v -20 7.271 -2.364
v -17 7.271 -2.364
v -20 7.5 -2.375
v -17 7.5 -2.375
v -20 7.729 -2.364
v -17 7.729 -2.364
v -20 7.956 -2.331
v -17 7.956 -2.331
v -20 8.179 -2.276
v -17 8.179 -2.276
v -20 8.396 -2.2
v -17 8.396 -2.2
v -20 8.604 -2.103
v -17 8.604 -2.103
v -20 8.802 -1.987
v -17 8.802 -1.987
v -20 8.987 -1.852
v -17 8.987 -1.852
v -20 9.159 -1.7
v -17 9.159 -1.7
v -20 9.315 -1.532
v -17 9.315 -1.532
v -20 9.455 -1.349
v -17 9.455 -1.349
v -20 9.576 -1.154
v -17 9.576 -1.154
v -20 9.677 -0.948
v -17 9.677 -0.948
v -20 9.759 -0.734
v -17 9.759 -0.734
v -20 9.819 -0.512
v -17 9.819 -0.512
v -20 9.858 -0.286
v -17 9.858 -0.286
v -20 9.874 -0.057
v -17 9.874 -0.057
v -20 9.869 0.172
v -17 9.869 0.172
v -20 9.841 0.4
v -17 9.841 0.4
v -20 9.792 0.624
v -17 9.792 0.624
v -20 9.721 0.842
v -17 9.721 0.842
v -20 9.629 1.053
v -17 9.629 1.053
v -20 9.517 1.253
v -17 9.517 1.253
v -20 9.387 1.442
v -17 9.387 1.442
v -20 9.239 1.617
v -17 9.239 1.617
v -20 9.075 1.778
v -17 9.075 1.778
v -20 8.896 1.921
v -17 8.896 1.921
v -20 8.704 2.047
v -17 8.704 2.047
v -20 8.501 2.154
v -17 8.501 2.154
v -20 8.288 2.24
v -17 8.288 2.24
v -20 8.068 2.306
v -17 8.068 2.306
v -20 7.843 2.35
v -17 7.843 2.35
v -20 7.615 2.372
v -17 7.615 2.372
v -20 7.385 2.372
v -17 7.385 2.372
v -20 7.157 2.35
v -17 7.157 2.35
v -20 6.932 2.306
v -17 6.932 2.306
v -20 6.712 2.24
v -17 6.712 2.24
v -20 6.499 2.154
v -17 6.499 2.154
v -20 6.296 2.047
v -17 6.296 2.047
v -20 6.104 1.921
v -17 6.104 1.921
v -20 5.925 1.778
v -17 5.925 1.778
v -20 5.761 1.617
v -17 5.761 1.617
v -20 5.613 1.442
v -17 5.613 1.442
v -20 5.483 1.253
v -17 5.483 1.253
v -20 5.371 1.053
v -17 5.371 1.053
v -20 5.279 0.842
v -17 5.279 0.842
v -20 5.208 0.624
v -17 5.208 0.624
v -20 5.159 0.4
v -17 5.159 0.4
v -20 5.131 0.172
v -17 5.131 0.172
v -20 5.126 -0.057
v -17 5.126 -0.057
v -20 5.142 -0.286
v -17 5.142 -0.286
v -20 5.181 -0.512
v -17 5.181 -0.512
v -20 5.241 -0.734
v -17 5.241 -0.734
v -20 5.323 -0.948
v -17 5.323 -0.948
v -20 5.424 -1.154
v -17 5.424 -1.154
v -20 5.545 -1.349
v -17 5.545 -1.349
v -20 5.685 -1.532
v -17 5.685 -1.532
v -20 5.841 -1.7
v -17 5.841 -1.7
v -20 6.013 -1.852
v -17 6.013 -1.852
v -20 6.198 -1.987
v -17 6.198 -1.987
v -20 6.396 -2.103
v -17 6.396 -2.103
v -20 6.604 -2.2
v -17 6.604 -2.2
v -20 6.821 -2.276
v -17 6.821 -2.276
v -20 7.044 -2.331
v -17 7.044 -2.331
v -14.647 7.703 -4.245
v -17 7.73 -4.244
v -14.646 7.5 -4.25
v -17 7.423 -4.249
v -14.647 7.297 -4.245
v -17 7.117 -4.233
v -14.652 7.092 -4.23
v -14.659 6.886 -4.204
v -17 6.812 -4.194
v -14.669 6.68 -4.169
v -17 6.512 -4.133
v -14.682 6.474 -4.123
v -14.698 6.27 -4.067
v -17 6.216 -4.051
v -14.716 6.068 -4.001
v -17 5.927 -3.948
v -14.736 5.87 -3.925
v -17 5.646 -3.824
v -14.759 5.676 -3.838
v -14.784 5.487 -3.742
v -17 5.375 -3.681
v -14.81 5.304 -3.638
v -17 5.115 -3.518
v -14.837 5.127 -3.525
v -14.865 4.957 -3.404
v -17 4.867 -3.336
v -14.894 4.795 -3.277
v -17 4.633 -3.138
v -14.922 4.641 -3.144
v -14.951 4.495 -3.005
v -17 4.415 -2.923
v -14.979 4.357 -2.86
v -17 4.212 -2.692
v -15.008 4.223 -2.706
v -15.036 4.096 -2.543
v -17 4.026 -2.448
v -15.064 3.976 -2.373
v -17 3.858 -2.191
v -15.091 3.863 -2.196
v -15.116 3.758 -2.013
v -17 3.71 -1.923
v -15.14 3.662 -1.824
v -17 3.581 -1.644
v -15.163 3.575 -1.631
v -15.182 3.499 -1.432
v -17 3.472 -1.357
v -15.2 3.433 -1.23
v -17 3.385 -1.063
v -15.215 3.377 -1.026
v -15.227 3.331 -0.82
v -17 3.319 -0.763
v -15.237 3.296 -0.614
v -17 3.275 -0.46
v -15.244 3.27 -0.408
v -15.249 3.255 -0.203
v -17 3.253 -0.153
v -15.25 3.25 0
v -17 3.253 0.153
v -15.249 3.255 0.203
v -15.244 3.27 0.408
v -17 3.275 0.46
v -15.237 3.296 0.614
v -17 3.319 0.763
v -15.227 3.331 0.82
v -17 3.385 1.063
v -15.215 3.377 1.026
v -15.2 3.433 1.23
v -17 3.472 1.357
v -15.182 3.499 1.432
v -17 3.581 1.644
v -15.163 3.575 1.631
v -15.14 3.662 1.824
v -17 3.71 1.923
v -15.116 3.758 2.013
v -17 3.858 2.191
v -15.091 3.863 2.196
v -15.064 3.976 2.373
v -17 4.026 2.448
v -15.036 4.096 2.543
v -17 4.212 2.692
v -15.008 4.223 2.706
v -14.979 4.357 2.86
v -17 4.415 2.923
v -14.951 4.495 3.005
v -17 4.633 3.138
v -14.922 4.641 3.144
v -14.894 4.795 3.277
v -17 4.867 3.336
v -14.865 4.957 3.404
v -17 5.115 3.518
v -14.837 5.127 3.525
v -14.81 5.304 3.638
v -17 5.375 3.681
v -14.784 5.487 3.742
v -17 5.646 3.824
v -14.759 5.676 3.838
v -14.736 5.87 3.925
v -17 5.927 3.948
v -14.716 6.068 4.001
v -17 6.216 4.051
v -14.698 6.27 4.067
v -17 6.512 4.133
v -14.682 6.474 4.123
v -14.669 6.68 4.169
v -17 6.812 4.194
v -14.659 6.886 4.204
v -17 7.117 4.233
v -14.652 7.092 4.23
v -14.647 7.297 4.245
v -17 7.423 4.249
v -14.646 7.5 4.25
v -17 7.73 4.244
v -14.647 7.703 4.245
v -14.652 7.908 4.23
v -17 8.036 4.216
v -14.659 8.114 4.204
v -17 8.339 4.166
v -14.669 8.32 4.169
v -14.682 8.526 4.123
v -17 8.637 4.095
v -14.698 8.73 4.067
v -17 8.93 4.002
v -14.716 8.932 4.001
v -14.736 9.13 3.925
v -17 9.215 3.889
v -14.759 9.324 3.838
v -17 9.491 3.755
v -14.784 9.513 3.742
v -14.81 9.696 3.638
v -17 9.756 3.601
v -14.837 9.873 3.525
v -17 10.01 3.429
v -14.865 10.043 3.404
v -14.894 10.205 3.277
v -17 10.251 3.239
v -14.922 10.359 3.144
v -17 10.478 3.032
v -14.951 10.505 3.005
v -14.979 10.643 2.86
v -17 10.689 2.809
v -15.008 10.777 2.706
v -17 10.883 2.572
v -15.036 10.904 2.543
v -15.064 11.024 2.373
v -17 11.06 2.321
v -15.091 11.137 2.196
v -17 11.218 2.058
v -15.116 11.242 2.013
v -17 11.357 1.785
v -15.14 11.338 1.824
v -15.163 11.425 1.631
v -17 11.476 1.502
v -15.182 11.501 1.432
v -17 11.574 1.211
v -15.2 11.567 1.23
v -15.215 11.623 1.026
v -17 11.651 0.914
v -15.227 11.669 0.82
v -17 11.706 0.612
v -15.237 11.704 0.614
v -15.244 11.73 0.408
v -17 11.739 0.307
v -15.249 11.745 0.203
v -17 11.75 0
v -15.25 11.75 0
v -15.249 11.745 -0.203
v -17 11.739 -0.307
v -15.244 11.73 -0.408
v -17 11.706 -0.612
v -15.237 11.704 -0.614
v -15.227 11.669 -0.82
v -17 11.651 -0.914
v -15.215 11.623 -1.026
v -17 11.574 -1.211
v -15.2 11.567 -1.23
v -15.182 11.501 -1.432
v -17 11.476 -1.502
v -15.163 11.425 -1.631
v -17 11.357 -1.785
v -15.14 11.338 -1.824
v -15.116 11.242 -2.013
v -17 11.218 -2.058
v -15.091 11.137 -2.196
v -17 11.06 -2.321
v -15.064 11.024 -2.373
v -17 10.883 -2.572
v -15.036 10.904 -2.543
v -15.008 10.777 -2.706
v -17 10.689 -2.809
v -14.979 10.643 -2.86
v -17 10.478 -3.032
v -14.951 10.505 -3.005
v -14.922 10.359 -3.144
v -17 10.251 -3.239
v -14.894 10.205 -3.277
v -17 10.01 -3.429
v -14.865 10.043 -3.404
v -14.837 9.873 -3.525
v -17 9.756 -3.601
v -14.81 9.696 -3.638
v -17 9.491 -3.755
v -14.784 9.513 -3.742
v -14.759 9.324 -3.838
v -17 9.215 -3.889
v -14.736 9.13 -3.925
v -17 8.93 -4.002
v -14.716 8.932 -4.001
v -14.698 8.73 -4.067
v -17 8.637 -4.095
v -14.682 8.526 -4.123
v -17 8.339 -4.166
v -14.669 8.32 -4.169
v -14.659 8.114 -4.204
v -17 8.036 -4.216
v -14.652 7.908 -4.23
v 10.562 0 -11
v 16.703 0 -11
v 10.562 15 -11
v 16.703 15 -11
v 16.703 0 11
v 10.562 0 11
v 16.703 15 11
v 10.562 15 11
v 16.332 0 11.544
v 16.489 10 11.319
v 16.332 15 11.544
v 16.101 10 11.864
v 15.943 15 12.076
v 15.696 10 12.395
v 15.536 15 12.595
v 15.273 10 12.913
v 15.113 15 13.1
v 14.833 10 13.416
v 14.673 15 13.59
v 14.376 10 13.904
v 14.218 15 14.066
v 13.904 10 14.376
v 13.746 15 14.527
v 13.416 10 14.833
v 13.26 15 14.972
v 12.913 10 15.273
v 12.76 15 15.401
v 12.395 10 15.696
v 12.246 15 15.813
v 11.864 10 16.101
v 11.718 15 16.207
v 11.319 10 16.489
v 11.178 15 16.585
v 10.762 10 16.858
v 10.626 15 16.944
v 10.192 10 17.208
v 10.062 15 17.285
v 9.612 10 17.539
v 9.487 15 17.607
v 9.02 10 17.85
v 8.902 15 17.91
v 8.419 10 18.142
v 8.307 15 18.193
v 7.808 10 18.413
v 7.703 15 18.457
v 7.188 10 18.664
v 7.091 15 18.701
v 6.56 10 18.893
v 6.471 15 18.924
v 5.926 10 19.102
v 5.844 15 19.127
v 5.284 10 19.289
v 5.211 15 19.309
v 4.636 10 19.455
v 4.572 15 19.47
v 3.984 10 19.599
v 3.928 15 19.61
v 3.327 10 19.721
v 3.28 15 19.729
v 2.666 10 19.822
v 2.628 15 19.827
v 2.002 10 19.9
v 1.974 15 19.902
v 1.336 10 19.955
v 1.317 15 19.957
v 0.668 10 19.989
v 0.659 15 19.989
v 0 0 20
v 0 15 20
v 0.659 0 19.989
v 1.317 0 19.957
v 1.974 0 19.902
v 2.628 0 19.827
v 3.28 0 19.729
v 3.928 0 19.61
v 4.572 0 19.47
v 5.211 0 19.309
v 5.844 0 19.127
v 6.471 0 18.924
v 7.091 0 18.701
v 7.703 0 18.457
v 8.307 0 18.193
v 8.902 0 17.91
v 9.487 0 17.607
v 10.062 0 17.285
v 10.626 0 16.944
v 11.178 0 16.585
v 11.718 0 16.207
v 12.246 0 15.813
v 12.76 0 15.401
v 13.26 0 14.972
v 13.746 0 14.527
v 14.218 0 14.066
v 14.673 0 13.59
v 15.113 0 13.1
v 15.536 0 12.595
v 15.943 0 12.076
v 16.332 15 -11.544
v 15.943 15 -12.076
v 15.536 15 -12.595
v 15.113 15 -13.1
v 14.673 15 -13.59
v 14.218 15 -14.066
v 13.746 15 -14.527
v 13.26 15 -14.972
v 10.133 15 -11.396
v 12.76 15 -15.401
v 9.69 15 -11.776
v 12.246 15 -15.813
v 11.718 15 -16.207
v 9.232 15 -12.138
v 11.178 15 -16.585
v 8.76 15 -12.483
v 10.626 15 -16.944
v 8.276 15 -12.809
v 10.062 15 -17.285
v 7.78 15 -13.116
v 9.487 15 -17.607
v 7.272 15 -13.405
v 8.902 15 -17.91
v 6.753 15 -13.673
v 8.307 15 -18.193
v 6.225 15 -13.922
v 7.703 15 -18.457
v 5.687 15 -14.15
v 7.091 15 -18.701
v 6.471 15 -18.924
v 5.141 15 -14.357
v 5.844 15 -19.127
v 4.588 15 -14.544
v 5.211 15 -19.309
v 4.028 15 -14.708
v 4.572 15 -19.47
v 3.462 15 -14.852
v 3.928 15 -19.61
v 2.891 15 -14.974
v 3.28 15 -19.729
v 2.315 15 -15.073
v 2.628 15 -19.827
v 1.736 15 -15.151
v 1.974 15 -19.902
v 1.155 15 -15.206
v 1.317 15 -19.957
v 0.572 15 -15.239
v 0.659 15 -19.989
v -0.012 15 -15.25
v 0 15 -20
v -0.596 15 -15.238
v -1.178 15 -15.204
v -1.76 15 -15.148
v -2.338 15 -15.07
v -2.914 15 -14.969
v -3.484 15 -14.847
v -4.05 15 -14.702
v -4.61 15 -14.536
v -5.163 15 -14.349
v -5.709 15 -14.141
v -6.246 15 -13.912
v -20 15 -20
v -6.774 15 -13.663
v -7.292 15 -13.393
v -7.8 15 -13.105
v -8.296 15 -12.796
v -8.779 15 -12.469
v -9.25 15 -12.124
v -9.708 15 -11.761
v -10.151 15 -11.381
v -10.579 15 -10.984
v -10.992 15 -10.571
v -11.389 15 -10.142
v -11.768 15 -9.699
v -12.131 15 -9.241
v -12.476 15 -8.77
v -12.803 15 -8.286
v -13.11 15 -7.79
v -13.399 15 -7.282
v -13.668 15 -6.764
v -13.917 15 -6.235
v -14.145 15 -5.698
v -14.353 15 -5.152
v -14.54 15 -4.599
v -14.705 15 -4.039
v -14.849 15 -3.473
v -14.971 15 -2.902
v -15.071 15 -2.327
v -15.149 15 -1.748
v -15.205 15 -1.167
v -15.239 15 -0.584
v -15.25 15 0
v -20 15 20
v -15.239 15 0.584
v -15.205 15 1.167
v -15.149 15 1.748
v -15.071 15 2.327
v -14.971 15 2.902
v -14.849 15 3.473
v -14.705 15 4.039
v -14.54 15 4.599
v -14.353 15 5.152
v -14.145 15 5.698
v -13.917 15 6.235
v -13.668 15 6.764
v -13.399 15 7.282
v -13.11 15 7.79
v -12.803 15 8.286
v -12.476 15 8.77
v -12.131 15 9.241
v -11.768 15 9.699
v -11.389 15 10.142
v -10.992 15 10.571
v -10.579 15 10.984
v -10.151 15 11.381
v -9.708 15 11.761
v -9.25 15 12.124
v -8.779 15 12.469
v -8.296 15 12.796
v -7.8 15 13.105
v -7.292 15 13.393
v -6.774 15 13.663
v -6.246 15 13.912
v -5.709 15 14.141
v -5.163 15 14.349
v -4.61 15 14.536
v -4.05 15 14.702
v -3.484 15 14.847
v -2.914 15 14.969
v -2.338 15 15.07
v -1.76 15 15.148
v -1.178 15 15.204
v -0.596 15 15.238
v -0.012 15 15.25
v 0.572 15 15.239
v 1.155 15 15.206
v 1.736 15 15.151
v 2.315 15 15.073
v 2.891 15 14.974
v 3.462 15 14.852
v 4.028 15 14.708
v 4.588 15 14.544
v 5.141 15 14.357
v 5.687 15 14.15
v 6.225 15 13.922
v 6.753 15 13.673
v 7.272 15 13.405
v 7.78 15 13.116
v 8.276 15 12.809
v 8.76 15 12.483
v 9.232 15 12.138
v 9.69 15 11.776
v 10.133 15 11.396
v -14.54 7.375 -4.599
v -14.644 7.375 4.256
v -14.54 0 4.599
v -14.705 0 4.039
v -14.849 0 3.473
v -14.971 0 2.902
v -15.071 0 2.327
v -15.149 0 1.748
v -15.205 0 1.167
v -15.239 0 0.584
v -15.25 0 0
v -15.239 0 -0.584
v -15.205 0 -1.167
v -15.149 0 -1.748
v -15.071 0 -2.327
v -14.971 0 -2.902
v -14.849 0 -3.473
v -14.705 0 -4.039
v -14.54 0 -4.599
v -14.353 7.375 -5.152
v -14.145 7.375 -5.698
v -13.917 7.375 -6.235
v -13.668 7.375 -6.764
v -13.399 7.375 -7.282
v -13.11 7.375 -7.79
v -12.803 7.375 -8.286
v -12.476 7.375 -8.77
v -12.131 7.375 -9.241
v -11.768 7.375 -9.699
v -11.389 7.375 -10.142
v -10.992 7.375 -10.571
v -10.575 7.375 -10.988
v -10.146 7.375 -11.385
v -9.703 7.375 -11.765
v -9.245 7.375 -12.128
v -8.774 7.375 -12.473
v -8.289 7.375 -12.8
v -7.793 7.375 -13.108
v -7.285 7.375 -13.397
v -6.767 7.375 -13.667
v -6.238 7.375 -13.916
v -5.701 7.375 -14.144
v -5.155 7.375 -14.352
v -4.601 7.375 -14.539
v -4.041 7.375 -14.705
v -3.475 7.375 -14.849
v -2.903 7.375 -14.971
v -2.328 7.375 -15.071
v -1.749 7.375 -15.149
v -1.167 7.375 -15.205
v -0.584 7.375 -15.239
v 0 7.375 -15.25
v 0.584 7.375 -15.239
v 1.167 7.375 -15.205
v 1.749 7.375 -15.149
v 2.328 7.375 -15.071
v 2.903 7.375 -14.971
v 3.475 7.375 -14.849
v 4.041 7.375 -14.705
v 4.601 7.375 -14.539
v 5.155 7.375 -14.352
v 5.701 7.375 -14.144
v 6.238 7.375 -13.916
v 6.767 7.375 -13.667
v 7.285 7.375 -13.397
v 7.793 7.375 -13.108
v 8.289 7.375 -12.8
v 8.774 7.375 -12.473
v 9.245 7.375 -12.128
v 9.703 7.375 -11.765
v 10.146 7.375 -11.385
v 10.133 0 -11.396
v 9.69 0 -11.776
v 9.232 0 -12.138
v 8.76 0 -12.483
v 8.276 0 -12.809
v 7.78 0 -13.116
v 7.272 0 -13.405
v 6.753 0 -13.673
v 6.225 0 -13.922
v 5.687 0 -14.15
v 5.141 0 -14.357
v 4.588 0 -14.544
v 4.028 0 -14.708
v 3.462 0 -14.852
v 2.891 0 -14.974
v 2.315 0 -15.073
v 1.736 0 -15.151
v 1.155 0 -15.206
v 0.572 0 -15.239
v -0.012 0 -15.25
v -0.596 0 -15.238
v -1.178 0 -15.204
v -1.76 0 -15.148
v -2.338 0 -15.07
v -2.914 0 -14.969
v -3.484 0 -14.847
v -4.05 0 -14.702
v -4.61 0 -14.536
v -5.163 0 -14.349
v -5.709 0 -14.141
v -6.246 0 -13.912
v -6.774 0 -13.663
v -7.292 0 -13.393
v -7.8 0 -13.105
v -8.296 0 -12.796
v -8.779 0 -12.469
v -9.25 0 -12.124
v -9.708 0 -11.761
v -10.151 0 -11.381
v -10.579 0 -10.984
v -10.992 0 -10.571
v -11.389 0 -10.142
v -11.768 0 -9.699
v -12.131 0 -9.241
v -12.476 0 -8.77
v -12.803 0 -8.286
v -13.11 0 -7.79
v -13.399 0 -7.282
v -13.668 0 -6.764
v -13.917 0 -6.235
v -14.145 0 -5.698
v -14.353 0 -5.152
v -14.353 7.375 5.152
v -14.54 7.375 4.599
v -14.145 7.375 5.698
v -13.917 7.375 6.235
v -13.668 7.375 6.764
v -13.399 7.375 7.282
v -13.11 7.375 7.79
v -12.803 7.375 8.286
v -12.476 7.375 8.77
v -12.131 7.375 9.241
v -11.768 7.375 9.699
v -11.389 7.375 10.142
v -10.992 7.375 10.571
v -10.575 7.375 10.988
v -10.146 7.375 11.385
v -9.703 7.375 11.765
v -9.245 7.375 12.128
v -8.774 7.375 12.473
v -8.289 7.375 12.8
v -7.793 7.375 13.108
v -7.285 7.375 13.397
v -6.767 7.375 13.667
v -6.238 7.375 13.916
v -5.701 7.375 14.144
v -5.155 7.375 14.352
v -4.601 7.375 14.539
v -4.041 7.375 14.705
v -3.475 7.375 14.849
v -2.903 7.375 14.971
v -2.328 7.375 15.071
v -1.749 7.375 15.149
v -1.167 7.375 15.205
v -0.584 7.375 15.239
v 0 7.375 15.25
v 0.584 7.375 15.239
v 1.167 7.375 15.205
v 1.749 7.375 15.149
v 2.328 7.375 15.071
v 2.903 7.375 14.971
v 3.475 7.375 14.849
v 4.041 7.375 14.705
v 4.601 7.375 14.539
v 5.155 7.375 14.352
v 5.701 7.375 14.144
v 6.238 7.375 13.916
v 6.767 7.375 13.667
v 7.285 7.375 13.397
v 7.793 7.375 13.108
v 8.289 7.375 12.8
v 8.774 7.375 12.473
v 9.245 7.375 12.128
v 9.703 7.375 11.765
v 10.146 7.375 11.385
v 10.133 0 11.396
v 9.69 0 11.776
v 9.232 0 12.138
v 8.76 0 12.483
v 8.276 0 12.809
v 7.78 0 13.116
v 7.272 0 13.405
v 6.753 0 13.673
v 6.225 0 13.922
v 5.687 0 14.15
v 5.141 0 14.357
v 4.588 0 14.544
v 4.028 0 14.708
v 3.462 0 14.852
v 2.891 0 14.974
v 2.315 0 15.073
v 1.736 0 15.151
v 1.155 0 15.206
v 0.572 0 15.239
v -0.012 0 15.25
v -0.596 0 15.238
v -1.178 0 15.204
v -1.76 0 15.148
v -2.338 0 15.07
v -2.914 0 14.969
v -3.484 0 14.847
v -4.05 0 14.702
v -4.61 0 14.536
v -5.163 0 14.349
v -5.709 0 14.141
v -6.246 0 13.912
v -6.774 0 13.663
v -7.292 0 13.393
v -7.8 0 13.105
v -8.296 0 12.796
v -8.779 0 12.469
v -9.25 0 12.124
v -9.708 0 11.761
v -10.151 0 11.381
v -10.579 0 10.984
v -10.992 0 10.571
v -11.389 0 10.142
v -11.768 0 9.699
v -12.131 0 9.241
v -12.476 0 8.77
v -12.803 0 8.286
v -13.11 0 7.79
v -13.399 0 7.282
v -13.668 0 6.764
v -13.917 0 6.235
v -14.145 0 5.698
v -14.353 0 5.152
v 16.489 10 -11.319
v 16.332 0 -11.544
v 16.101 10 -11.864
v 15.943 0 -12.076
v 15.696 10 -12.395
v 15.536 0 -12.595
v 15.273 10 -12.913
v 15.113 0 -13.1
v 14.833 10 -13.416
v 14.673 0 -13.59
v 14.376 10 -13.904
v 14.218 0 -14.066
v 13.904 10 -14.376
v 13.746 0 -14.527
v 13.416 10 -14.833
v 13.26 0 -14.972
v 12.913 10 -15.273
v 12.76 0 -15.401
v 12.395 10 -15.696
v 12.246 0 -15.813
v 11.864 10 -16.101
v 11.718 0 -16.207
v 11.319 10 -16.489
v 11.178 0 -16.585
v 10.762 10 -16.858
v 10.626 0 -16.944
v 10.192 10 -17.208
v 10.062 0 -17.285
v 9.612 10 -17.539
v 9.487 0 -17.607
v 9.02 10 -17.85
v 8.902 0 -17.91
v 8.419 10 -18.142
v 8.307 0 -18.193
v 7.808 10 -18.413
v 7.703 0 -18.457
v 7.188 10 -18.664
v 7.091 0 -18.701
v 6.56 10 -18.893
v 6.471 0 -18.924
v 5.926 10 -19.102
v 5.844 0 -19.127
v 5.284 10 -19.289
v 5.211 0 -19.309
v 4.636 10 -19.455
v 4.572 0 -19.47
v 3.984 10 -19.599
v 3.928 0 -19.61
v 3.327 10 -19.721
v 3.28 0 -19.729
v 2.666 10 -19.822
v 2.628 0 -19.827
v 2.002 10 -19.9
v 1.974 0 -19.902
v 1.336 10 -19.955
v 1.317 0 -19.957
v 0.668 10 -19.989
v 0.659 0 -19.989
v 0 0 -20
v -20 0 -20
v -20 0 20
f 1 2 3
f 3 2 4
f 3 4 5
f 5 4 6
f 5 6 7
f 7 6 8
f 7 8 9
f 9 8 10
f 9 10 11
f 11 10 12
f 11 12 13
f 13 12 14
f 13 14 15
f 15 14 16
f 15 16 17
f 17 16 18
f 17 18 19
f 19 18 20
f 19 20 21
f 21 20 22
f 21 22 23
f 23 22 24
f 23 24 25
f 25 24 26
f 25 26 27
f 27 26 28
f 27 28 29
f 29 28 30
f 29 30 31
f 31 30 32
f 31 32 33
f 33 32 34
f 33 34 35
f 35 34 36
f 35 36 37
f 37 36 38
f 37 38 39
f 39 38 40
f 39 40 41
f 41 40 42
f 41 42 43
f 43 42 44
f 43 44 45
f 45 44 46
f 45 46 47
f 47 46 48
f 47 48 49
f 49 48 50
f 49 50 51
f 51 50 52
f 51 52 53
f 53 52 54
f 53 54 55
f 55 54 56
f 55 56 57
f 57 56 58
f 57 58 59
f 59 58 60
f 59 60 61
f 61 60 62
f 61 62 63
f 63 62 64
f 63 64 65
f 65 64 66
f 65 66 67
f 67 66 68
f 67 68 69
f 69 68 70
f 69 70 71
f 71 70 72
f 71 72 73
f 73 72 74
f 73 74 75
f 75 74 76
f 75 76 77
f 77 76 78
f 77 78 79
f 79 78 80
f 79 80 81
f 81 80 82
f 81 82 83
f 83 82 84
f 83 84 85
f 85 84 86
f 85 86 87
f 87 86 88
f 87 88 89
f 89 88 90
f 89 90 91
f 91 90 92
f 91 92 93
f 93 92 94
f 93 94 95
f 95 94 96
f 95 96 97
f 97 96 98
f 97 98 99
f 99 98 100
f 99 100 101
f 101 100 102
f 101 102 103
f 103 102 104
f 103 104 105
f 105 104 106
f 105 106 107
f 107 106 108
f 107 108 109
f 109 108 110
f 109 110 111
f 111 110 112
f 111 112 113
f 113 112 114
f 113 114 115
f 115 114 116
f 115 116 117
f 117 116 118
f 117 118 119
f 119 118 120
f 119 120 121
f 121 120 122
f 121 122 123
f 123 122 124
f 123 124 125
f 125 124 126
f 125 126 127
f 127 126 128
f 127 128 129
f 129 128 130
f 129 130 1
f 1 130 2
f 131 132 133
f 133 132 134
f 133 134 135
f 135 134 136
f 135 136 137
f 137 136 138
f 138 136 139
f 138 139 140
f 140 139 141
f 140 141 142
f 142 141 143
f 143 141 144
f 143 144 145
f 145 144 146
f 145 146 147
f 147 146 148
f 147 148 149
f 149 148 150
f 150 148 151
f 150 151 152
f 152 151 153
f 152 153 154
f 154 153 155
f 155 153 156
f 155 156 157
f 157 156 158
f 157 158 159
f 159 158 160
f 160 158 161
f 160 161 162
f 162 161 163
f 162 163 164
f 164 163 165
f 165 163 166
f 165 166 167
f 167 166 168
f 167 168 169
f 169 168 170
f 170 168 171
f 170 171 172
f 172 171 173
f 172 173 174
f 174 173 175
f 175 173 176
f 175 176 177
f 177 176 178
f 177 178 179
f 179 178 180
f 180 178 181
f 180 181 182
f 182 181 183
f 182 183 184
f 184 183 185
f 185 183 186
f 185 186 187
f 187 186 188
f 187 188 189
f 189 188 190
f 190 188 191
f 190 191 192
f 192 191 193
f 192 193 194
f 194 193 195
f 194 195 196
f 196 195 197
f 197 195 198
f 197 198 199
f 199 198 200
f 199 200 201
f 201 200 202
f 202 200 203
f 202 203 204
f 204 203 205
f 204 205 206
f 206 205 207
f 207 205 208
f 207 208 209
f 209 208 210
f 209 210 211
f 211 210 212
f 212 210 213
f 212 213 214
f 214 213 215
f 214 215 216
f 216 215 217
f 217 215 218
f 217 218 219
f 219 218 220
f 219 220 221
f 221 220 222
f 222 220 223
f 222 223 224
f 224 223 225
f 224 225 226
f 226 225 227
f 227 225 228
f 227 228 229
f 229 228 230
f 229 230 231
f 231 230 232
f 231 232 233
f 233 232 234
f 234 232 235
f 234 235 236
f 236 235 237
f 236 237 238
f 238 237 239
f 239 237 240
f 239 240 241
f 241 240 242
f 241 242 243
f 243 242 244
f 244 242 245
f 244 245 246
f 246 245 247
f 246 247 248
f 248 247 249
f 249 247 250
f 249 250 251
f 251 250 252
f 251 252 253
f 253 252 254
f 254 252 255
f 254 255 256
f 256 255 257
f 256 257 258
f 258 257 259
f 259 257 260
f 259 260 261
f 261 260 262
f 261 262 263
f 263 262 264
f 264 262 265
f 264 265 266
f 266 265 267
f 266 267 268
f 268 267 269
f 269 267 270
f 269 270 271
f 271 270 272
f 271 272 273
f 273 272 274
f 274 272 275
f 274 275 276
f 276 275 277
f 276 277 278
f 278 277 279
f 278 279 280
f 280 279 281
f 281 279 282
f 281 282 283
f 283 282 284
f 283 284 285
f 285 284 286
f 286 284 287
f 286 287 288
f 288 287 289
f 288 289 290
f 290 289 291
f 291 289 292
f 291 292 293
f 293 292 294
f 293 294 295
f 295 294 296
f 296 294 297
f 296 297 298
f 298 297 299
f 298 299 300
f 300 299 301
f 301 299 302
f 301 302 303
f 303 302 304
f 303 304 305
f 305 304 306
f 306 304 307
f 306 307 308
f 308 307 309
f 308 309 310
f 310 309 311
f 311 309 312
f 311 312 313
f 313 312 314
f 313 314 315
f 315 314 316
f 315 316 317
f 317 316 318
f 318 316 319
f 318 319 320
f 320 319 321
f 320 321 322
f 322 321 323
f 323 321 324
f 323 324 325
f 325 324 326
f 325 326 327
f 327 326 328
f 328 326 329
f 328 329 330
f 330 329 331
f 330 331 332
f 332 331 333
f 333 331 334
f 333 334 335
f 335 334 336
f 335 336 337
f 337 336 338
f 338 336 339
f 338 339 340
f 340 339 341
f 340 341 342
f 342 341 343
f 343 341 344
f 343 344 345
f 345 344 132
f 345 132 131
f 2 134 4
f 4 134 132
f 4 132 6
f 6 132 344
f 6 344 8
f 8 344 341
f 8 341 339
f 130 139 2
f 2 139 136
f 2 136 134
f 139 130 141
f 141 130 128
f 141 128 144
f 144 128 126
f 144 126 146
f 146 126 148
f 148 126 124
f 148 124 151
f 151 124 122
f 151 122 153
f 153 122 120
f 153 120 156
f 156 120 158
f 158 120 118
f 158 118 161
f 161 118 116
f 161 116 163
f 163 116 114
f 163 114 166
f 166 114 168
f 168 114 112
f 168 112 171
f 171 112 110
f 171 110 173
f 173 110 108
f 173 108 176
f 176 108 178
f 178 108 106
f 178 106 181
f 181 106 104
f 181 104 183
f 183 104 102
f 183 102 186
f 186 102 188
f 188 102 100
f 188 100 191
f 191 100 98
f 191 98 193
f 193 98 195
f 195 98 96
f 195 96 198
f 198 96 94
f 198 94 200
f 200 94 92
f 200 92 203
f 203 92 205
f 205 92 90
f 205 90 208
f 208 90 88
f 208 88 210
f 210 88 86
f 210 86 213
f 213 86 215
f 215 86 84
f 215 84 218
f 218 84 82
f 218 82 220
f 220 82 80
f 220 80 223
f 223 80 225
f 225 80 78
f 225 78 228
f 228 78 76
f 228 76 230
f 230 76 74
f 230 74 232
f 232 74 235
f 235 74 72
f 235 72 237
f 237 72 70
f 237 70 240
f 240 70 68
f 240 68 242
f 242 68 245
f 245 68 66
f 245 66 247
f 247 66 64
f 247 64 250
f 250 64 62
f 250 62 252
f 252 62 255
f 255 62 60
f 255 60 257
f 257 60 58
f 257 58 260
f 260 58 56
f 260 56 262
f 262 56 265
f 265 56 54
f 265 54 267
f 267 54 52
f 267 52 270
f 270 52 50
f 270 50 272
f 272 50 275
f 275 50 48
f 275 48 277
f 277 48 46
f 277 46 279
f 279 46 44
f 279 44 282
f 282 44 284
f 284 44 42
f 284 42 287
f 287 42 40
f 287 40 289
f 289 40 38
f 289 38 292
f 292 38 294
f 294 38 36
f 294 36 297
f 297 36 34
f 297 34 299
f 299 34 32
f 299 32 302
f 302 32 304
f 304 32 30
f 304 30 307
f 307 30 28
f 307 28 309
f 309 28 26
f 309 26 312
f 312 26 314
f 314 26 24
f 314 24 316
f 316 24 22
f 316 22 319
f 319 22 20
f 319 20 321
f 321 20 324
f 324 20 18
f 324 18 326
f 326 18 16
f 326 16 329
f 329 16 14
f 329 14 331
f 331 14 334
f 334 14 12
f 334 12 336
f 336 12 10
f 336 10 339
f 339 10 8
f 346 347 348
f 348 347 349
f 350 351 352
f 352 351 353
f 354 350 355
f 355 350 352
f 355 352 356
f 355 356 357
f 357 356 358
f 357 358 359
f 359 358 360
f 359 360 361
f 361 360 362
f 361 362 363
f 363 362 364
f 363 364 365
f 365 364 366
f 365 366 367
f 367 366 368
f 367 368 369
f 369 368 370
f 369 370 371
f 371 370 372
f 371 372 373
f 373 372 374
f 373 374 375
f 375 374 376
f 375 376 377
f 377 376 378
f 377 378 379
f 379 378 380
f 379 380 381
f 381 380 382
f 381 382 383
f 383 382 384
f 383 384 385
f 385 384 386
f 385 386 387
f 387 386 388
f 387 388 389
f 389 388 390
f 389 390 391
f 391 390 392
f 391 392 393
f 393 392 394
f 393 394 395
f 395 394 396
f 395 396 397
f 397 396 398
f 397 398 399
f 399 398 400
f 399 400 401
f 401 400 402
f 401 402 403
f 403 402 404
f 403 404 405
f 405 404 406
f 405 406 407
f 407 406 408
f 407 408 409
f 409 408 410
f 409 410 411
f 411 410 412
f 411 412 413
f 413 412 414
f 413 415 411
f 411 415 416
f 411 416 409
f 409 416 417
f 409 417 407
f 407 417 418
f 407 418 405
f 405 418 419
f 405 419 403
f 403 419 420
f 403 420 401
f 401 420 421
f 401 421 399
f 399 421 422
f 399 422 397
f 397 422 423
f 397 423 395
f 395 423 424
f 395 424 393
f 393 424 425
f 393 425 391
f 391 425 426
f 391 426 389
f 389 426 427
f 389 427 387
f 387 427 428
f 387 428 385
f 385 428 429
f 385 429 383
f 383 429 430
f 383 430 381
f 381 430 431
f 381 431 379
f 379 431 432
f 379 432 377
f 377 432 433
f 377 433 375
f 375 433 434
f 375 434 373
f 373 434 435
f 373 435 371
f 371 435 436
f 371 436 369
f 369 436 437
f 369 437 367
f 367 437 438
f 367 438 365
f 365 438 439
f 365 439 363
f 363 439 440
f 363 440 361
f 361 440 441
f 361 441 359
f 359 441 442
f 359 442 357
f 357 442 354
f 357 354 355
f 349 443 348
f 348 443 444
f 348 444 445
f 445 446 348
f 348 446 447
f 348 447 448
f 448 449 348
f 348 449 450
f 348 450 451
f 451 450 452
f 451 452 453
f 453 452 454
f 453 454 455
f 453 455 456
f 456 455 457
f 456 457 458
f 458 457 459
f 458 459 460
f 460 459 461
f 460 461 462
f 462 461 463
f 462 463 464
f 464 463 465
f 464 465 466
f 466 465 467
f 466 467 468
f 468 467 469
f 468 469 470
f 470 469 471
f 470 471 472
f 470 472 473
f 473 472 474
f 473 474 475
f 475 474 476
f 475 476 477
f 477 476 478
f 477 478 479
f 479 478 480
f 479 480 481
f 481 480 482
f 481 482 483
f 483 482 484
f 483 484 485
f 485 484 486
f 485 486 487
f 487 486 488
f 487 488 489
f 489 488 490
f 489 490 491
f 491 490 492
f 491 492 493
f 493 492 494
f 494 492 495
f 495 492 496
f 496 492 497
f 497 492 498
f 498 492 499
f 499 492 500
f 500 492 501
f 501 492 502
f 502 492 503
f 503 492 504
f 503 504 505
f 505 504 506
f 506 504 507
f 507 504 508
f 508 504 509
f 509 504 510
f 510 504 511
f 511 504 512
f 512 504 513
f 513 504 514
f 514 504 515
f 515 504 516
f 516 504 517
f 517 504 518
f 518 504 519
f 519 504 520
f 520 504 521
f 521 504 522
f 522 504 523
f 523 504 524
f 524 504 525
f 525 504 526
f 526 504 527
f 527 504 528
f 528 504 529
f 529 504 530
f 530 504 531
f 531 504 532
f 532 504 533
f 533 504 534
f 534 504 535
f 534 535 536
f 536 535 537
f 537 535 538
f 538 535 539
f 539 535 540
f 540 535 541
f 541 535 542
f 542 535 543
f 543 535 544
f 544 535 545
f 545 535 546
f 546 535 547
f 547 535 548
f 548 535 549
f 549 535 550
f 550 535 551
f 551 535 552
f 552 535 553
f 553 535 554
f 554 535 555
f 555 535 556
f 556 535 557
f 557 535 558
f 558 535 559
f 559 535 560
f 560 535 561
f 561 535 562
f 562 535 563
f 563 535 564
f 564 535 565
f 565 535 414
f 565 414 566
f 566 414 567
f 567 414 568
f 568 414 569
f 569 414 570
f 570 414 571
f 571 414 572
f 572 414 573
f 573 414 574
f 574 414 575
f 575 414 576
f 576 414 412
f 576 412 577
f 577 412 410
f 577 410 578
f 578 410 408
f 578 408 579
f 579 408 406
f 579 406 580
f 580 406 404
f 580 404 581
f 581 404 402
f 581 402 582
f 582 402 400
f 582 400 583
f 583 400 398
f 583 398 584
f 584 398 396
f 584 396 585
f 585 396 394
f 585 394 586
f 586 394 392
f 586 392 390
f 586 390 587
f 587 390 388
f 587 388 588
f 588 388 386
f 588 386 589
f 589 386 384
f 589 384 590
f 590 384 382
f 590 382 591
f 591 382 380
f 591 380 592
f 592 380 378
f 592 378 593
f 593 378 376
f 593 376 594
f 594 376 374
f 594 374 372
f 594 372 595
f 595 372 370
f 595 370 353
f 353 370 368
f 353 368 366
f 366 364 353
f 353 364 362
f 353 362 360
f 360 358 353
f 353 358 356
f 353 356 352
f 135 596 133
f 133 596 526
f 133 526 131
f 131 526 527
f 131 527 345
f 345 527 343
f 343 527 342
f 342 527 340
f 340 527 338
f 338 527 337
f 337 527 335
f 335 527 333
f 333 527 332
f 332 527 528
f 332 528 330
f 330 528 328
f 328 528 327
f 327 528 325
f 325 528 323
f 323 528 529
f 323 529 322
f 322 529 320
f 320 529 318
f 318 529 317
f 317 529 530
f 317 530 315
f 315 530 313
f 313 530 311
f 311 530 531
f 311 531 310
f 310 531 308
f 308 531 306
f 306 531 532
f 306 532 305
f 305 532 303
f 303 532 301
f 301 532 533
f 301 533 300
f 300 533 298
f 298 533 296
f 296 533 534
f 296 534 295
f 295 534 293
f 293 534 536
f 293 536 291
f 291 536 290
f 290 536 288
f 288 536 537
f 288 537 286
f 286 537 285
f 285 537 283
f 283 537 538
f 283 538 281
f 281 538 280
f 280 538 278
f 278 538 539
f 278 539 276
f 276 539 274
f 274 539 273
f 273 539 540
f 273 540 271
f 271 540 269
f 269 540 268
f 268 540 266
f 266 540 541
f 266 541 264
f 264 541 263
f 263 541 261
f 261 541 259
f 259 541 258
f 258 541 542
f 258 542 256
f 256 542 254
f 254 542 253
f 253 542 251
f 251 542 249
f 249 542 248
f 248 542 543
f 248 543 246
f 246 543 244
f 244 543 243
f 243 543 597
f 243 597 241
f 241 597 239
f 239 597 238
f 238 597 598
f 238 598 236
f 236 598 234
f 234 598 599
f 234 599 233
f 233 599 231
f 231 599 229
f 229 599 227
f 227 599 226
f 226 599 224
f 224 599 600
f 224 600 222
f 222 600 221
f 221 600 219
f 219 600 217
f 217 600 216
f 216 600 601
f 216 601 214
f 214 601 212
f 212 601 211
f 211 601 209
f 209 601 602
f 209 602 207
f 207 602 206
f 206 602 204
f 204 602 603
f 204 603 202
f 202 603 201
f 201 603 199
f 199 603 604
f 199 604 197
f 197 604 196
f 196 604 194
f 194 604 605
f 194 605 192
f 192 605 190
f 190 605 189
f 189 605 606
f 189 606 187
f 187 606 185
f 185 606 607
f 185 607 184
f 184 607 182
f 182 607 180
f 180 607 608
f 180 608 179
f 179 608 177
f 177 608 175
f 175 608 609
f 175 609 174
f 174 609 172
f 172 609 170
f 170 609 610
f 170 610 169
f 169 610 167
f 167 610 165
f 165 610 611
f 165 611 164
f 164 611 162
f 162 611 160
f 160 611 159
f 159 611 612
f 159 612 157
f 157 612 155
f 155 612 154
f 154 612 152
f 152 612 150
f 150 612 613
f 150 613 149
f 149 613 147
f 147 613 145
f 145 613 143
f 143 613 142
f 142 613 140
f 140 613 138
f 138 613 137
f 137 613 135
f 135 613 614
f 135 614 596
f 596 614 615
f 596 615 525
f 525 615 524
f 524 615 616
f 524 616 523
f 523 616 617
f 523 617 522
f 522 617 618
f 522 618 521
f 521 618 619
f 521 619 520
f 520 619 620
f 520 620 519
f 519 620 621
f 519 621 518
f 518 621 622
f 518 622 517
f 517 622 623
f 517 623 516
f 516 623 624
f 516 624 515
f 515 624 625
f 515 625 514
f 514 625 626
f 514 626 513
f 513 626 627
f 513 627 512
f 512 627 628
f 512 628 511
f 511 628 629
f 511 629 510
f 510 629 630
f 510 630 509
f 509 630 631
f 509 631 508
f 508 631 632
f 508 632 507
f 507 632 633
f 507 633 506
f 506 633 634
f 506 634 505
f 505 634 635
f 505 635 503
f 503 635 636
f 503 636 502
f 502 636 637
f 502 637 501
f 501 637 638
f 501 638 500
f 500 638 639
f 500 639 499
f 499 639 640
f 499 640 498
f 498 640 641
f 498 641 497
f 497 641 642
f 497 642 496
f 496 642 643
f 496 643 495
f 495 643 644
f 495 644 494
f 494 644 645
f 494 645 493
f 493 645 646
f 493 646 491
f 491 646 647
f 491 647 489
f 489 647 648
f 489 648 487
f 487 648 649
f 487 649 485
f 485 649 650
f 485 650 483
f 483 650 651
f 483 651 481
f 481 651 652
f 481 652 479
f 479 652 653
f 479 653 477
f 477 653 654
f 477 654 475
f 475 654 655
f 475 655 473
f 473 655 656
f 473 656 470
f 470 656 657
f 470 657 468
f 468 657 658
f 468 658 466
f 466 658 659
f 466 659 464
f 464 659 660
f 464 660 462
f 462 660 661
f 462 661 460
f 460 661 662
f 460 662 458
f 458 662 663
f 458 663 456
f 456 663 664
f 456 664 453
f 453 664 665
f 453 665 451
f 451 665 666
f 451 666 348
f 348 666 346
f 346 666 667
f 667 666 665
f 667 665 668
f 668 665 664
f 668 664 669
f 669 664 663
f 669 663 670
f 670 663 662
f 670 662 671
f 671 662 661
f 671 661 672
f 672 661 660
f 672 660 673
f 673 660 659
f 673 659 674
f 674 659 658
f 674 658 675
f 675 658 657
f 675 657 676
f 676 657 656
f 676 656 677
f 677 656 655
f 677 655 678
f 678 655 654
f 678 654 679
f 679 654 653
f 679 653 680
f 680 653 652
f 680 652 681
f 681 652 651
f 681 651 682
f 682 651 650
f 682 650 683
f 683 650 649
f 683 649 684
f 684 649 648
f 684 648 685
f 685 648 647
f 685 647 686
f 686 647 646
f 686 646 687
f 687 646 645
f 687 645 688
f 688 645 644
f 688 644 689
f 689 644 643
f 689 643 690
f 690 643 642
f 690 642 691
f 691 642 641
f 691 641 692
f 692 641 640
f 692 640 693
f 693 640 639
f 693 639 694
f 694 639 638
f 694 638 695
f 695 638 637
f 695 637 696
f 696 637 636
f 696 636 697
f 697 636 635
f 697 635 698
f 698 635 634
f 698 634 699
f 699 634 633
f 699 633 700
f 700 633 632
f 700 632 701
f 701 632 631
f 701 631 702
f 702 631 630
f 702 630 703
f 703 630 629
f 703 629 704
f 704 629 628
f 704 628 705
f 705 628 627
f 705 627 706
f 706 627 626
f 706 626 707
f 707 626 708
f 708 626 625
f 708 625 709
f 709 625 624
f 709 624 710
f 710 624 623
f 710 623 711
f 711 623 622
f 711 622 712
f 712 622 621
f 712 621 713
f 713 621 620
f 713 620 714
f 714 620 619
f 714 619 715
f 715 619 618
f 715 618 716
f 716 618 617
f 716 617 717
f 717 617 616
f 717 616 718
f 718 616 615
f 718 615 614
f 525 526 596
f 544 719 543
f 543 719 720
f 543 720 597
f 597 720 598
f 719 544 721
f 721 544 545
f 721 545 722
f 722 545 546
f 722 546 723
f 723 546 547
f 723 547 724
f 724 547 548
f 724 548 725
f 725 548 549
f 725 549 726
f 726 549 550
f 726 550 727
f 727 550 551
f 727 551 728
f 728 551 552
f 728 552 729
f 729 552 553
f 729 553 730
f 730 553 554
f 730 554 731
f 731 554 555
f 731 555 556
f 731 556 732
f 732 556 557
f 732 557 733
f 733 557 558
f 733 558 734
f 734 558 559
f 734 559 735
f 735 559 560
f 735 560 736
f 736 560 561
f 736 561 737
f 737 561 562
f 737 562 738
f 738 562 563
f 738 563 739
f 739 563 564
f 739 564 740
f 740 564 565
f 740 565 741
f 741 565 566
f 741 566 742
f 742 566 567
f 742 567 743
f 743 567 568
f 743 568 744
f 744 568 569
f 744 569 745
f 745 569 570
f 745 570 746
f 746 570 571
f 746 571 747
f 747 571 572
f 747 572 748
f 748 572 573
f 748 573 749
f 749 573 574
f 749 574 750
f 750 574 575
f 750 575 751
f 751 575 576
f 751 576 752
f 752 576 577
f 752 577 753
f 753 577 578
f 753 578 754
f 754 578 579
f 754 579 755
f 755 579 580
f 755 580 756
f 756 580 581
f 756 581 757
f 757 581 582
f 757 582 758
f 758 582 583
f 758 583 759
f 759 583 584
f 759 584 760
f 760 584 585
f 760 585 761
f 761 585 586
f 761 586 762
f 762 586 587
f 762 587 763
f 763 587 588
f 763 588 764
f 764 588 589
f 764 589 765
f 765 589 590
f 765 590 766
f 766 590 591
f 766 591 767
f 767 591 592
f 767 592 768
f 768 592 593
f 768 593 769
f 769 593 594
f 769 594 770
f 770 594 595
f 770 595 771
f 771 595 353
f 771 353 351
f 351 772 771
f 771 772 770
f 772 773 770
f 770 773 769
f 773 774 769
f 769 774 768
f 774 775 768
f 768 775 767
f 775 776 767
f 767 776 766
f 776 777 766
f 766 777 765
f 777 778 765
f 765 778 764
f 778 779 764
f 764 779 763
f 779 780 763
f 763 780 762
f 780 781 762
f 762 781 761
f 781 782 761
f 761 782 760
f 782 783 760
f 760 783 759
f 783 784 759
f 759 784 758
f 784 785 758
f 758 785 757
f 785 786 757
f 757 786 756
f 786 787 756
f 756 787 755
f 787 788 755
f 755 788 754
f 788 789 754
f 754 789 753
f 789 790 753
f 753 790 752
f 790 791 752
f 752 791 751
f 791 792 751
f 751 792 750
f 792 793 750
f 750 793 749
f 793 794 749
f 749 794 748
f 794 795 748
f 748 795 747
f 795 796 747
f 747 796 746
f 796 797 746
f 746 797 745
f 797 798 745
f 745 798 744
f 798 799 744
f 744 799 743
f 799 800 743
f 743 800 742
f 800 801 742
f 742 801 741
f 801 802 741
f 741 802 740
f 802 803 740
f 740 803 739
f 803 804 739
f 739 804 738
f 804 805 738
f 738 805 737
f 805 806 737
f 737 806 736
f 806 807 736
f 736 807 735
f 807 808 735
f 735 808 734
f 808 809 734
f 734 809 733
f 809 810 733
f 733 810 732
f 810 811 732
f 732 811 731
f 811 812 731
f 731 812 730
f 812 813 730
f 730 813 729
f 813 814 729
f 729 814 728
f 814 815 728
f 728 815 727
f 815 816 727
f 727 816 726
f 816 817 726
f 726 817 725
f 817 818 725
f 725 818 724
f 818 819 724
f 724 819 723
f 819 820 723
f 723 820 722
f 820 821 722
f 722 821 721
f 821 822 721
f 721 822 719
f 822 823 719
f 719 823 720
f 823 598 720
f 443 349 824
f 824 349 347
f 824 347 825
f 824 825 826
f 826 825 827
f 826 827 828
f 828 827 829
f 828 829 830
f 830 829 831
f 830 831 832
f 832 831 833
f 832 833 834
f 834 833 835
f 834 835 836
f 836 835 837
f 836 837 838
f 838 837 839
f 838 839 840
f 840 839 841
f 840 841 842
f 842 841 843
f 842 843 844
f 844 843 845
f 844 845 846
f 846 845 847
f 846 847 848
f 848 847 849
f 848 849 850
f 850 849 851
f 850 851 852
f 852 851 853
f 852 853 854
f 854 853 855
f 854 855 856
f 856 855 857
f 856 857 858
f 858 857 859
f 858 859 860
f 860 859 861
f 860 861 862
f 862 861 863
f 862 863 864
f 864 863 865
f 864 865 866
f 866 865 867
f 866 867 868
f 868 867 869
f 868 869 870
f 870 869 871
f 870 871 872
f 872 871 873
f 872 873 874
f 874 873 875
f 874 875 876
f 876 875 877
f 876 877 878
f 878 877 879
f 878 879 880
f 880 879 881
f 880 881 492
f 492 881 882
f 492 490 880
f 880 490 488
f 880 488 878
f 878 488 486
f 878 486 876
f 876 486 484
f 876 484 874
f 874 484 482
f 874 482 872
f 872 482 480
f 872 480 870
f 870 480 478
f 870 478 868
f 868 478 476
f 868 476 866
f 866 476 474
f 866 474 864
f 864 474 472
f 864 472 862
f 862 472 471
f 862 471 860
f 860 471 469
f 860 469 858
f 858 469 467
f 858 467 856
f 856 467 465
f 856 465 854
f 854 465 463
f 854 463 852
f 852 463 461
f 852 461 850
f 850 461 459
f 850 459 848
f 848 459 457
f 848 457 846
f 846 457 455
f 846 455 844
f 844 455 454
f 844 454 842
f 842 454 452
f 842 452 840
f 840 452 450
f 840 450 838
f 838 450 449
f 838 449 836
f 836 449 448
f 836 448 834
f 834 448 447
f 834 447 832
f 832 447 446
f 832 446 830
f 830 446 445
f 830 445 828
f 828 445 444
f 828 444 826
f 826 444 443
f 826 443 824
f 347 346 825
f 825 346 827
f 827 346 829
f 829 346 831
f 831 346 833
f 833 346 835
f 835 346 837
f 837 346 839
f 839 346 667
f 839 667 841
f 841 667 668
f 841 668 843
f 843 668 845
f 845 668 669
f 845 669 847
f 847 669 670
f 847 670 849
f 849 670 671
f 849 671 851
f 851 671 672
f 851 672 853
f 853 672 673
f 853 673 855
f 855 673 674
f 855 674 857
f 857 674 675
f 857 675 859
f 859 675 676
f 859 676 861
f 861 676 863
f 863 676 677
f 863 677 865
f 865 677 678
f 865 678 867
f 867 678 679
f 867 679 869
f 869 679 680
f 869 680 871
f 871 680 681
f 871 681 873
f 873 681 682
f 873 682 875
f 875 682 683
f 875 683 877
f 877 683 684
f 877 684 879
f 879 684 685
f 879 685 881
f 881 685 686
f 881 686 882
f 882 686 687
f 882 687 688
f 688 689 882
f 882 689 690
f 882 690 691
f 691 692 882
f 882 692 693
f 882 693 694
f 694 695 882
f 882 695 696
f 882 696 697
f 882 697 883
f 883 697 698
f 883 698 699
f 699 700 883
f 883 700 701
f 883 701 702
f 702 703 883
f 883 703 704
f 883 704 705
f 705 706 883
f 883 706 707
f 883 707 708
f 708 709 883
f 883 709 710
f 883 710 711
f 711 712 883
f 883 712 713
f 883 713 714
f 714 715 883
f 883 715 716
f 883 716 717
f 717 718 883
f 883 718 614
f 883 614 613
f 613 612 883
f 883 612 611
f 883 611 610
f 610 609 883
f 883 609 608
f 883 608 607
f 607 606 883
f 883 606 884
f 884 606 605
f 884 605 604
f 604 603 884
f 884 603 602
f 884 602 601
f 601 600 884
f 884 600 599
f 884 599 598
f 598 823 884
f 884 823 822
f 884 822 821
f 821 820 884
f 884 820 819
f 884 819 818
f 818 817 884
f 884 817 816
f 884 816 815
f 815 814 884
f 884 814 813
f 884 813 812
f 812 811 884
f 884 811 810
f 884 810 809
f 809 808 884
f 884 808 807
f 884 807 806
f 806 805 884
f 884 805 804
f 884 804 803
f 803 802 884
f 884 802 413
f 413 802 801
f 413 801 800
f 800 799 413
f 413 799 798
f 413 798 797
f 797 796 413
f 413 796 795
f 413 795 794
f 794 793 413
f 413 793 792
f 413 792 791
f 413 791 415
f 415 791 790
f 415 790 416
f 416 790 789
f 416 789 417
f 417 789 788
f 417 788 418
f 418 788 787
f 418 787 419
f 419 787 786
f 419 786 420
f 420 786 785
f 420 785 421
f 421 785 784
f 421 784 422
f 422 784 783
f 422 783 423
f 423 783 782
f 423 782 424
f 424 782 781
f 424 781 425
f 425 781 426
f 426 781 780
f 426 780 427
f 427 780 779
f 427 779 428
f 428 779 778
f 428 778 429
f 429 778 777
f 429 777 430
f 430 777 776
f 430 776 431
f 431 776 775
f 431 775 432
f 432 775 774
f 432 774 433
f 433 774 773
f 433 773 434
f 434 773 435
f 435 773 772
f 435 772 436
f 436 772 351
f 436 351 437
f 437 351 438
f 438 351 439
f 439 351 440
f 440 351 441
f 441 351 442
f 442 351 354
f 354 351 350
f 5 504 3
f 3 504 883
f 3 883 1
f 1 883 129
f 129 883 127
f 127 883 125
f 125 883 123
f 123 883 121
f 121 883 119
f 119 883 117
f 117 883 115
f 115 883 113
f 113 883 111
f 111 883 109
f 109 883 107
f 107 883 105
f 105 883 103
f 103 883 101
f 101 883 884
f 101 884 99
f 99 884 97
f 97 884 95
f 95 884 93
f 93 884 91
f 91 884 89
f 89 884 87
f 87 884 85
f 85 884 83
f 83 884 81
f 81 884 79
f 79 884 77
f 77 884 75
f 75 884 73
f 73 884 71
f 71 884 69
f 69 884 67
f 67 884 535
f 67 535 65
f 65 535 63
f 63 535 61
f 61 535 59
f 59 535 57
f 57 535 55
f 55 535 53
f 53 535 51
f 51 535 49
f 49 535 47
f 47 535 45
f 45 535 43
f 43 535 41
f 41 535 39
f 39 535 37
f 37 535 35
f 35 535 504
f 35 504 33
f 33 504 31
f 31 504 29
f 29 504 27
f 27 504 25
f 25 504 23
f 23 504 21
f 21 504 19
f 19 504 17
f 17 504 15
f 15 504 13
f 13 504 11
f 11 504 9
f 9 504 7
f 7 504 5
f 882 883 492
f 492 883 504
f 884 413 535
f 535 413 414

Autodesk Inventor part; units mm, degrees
ref_plane "XZ Plane" through (0, 0, 0) normal (0, 1, 0) x (-1, 0, 0)
ref_plane "XY Plane" through (0, 0, 0) normal (0, 0, 1) x (1, 0, 0)
sketch "Sketch1" plane through (0, 0, 0) normal (0, 1, 0) x (-1, 0, 0)
  circle A0 centre (0, 0) radius 20
  line L0 (0, 20) -> (20, 20)
  line L1 (20, 20) -> (20, -20)
  line L2 (20, -20) -> (0, -20)
  line L3 (0, -20) -> (0, 20)
  dimension "d0" = 40
extrude "Extrusion1" add sketch "Sketch1" along normal blind 15
sketch "Sketch2" plane through (0, 15, 0) normal (0, 1, 0) x (1, 0, 0)
  circle A0 centre (0, 0) radius 15.25
  dimension "d3" = 30.5
extrude "Extrusion2" cut sketch "Sketch2" against normal up to next
sketch "Sketch3" plane through (0, 15, 0) normal (0, 1, 0) x (1, 0, 0)
  line L0 (10, -11) -> (30, -11)
  line L1 (30, -11) -> (30, 11)
  line L2 (30, 11) -> (10, 11)
  line L3 (10, 11) -> (10, -11)
  arc A0 (0, -20) -> (0, 20) centre (0, 0) ccw projected
  line L4 (10, -11) -> (30, 11) construction
  line L5 (30, -11) -> (10, 11) construction
  point P0 (20, 0)
  dimension "d6" = 22
  dimension "d7" = 20
extrude "Extrusion3" cut sketch "Sketch3" against normal up to next
ref_plane "Work Plane1" through (-14, 0, 0) normal (1, 0, 0) x (0, 1, 0)
sketch "Sketch7" plane through (-14, 0, 0) normal (1, 0, 0) x (0, 1, 0)
  circle A0 centre (7.5, 0) radius 4.25
  line L0 (0, -15.25) -> (0, 15.25) projected
  point P0 (0, 0)
  point P1 (0, -11)
  point P2 (0, 11)
  dimension "d18" = 8.5
  dimension "d19" = 7.5
extrude "Extrusion4" cut sketch "Sketch7" against normal blind 3
sketch "Sketch8" plane through (-17, 7.5, 0) normal (1, 0, 0) x (0, 0, -1)
  circle A0 centre (0, 0) radius 2.375
  point P0 (0, -7.5)
  dimension "d22" = 4.75
extrude "Extrusion5" cut sketch "Sketch8" against normal up to next
properties part number "60mL_falcon_holder"
